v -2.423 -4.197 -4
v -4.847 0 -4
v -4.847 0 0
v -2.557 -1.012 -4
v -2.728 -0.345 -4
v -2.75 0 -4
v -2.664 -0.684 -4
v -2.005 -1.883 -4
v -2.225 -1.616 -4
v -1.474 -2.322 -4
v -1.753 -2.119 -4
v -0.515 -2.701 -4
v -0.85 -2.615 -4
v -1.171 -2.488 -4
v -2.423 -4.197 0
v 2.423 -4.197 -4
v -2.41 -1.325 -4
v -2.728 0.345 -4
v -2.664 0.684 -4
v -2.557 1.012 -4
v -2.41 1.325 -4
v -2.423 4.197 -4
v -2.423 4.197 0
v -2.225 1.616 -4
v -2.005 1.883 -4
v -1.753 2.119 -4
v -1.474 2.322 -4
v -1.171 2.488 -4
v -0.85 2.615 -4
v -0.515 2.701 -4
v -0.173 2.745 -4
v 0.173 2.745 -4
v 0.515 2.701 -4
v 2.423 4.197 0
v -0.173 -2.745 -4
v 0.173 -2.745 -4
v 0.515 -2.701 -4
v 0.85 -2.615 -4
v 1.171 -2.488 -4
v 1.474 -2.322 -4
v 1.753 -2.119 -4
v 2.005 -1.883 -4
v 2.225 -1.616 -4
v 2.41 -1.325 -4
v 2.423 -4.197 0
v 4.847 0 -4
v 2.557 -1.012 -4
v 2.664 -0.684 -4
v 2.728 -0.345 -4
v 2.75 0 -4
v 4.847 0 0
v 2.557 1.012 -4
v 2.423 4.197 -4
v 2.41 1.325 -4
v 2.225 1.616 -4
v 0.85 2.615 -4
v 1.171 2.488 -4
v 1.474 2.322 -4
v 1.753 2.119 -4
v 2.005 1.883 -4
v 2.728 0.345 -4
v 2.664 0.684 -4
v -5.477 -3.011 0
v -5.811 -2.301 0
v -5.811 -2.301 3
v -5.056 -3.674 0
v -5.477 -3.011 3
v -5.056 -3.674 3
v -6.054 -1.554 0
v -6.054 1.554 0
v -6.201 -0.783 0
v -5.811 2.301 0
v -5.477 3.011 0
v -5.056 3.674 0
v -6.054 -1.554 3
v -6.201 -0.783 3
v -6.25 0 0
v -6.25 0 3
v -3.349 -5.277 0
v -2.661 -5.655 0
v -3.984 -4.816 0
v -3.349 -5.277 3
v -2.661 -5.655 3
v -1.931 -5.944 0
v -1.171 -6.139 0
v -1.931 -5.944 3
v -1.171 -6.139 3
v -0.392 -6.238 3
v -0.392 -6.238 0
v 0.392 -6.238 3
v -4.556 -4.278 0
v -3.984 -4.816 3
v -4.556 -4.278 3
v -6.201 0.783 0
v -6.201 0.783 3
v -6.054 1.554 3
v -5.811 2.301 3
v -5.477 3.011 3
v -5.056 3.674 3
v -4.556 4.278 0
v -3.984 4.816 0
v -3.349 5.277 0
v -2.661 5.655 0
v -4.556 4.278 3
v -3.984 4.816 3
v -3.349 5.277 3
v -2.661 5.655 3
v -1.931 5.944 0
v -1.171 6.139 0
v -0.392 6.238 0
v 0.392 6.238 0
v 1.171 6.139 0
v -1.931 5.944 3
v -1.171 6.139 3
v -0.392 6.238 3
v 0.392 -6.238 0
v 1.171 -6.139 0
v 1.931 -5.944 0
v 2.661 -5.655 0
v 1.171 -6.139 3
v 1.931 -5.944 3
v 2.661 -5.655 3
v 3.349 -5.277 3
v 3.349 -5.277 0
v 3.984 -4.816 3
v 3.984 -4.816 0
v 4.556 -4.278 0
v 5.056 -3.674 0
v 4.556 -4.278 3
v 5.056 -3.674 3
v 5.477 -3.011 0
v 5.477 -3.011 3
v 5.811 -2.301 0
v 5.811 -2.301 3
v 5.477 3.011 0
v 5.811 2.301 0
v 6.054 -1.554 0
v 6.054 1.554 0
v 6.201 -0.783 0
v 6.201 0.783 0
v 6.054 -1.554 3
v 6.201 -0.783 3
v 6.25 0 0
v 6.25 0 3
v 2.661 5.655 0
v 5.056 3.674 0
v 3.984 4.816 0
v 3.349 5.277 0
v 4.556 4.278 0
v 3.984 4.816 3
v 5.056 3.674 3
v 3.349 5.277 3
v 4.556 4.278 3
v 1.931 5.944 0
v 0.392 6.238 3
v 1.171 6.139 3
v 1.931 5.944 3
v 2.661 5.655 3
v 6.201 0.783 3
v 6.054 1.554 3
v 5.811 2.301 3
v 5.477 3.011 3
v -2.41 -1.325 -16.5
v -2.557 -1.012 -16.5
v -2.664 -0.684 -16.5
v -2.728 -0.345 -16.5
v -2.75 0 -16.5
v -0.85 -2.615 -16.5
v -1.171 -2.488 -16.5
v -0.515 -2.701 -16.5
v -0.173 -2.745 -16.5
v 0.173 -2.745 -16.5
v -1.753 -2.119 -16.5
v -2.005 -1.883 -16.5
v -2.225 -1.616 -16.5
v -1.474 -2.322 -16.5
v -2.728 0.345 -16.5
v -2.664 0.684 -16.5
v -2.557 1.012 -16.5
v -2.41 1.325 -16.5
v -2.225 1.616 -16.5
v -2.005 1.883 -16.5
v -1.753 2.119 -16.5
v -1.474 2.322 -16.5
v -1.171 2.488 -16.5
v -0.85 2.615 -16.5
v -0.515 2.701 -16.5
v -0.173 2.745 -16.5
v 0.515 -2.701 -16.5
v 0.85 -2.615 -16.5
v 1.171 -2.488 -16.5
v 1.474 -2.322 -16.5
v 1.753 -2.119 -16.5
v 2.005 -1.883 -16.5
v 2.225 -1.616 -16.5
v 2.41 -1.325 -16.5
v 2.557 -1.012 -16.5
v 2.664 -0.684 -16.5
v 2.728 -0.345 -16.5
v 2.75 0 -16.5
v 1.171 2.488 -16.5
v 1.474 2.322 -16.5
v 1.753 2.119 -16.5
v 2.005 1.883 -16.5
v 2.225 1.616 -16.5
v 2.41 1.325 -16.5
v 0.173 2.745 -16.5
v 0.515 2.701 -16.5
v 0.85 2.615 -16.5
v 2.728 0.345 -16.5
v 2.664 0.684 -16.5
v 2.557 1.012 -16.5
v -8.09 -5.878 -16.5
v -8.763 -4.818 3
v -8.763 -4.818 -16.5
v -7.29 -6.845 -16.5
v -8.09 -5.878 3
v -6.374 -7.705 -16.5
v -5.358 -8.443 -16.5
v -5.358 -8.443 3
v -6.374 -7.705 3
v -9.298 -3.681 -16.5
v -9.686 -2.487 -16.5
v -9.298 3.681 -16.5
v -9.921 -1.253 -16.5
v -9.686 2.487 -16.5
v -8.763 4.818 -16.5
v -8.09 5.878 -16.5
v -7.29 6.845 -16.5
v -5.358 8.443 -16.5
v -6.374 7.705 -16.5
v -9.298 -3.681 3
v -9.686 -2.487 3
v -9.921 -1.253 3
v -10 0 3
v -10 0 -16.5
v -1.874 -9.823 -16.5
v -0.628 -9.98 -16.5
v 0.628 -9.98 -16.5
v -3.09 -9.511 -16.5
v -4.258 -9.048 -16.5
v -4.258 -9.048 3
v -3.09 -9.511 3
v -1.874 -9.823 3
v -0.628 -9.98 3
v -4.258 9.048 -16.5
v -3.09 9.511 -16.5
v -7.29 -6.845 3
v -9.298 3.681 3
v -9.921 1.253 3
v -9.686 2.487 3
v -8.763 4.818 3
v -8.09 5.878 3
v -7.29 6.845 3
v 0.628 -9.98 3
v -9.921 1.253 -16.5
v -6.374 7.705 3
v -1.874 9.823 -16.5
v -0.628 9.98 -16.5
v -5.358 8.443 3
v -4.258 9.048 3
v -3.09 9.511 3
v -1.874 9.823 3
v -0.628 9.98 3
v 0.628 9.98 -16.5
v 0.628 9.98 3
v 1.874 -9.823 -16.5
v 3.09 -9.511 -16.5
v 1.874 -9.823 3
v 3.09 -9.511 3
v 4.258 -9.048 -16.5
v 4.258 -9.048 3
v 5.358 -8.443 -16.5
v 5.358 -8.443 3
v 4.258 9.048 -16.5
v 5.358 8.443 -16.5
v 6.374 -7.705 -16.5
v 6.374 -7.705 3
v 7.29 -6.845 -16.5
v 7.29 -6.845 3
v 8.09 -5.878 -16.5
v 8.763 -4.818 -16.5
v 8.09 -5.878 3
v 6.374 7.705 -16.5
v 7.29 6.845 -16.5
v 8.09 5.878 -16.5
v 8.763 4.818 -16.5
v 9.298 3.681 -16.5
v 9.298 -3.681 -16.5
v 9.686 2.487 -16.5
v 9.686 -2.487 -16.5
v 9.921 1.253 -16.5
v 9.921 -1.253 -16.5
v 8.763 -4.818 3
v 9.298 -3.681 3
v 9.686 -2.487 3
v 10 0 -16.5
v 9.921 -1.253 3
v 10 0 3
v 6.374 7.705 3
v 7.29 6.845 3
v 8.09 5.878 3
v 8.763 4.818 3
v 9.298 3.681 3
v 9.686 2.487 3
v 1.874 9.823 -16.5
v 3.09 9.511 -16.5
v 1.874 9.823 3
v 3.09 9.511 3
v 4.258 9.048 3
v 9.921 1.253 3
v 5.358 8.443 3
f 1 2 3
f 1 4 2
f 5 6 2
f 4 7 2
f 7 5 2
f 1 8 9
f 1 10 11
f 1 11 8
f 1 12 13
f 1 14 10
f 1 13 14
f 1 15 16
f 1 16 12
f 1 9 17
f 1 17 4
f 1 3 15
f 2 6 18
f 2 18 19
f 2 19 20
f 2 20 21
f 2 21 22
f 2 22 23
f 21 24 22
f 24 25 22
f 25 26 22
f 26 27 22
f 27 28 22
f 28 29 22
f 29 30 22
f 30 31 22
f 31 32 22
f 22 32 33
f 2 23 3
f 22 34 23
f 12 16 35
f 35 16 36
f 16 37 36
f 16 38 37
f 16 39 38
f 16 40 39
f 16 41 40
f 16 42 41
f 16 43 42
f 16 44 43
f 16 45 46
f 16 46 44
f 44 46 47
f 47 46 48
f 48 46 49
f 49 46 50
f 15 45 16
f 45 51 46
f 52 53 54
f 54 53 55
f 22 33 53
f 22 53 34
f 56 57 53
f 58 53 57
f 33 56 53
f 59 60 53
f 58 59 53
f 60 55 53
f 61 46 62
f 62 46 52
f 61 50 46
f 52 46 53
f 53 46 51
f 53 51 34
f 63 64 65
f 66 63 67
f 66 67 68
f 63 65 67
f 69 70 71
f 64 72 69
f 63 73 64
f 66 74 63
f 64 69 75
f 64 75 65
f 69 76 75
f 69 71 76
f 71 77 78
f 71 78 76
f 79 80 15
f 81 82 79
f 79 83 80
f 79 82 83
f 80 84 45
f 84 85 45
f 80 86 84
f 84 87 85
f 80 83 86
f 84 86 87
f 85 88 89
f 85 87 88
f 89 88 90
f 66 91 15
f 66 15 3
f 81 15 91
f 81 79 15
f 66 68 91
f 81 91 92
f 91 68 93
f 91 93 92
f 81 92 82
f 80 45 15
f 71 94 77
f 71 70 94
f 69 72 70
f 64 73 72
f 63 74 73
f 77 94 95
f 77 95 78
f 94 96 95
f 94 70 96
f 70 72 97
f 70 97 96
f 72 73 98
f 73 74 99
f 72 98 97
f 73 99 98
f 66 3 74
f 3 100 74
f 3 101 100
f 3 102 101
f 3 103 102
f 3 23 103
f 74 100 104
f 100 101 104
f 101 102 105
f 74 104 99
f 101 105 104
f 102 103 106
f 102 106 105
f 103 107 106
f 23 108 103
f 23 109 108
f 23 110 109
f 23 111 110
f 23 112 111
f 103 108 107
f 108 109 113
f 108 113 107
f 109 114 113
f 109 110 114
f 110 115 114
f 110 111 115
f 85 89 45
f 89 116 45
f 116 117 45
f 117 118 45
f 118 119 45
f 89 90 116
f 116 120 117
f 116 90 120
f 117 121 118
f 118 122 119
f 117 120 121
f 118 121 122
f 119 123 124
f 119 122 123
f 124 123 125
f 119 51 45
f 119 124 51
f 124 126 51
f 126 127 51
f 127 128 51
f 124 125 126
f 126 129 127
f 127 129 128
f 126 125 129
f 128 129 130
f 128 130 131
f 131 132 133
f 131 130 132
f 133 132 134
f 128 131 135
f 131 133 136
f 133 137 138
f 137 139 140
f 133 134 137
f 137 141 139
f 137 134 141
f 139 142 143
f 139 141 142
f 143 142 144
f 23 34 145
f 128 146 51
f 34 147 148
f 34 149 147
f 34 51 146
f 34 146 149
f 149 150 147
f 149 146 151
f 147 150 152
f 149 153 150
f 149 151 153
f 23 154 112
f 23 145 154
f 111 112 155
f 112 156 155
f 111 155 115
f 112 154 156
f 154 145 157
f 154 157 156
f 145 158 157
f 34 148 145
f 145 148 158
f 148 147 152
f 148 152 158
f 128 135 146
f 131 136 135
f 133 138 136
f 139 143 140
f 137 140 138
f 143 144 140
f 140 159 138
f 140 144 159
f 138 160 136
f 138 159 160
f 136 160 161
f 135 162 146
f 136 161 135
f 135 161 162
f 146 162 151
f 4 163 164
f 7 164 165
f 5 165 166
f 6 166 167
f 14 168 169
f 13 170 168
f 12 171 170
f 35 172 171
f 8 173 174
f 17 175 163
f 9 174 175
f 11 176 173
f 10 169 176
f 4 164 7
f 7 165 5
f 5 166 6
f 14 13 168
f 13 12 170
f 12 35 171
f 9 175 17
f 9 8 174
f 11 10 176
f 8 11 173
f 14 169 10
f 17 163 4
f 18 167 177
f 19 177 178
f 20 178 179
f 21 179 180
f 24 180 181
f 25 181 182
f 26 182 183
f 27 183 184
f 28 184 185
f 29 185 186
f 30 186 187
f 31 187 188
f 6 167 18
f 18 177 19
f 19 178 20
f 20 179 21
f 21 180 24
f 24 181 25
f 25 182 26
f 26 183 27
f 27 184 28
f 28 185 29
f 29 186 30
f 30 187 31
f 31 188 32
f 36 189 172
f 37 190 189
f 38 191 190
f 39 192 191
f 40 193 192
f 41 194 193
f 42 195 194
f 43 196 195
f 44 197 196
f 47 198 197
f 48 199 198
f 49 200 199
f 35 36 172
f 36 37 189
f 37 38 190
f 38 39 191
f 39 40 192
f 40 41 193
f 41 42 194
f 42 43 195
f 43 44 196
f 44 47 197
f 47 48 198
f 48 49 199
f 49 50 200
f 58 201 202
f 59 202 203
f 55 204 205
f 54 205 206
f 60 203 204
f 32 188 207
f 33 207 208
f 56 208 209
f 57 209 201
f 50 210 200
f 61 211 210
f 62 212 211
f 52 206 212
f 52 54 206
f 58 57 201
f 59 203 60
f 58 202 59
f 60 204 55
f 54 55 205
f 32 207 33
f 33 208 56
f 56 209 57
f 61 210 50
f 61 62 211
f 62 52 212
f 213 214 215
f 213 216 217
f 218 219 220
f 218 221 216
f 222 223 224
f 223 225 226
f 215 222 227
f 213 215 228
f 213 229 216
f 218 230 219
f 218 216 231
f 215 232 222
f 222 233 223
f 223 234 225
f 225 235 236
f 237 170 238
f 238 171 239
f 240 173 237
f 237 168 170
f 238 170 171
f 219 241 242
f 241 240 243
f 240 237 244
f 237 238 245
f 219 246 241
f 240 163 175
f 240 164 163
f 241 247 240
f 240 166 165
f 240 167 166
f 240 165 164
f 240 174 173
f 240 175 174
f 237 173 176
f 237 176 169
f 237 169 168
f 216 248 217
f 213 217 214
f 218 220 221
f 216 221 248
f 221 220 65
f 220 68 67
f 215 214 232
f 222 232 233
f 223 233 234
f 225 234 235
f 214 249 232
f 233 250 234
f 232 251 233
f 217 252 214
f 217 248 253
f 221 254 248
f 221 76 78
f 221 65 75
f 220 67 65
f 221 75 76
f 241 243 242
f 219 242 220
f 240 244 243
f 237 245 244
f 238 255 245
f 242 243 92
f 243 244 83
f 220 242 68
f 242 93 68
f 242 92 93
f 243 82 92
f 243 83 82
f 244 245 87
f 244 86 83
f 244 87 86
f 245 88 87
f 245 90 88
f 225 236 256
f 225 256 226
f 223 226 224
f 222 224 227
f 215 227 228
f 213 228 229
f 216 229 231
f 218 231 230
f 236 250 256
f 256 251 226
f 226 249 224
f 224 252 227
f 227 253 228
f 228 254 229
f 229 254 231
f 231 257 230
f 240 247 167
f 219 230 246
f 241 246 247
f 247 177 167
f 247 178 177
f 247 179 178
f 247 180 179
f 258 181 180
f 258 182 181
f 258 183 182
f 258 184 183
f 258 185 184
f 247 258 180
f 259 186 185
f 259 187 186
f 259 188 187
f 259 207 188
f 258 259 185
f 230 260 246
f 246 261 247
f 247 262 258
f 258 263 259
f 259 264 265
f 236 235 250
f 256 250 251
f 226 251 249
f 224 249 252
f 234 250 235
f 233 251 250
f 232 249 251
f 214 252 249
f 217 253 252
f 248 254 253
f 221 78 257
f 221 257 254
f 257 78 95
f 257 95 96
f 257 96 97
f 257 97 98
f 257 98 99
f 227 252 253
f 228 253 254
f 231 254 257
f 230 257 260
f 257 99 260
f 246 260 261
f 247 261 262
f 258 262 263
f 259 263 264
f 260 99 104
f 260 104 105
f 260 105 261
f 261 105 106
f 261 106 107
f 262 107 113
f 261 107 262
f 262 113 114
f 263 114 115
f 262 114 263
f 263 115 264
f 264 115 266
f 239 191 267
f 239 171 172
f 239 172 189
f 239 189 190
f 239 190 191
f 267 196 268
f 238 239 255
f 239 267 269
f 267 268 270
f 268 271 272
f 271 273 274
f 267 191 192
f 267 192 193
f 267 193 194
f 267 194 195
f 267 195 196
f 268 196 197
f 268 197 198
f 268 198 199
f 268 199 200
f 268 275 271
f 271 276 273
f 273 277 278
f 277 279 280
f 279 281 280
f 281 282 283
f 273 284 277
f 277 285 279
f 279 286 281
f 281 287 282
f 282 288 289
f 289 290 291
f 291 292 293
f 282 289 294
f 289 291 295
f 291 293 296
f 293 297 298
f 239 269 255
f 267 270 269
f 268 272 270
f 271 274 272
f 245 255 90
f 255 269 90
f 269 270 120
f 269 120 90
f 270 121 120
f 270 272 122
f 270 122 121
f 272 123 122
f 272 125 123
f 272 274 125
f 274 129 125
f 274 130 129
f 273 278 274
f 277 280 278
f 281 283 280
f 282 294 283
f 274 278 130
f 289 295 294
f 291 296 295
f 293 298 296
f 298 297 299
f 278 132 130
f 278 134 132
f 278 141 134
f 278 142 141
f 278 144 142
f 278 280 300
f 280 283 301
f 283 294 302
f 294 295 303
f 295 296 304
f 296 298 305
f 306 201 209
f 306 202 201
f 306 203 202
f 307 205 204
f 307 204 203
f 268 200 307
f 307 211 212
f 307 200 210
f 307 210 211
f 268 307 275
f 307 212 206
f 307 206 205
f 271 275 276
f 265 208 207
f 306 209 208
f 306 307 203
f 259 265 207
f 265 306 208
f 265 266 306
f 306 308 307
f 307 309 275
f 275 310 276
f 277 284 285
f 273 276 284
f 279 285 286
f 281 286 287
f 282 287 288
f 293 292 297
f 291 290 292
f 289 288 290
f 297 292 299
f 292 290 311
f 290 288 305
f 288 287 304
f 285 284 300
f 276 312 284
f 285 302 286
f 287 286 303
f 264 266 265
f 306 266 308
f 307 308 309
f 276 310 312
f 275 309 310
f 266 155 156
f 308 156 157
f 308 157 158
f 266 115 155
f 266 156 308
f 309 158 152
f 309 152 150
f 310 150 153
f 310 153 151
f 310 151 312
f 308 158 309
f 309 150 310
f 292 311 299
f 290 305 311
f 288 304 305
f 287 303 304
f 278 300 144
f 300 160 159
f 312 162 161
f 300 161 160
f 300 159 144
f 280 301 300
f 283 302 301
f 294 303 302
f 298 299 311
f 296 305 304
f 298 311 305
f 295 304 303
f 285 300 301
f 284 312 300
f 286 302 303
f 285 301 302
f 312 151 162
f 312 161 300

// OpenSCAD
$fn = 50;


difference() {
	union() {
		translate(v = [0, 0, -16.5000000000]) {
			cylinder(h = 19.5000000000, r = 10.0000000000);
		}
	}
	union() {
		translate(v = [0, 0, 0]) {
			rotate(a = [0, 0, 0]) {
				difference() {
					union() {
						translate(v = [0, 0, -4]) {
							linear_extrude(height = 4) {
								polygon(points = [[4.8468000000, 0.0000000000], [2.4234000000, 4.1974519271], [-2.4234000000, 4.1974519271], [-4.8468000000, 0.0000000000], [-2.4234000000, -4.1974519271], [2.4234000000, -4.1974519271]]);
							}
						}
					}
					union();
				}
			}
		}
		#cylinder(h = 3, r = 6.2500000000);
		#translate(v = [0, 0, -100.0000000000]) {
			cylinder(h = 200, r = 2.7500000000);
		}
	}
}
